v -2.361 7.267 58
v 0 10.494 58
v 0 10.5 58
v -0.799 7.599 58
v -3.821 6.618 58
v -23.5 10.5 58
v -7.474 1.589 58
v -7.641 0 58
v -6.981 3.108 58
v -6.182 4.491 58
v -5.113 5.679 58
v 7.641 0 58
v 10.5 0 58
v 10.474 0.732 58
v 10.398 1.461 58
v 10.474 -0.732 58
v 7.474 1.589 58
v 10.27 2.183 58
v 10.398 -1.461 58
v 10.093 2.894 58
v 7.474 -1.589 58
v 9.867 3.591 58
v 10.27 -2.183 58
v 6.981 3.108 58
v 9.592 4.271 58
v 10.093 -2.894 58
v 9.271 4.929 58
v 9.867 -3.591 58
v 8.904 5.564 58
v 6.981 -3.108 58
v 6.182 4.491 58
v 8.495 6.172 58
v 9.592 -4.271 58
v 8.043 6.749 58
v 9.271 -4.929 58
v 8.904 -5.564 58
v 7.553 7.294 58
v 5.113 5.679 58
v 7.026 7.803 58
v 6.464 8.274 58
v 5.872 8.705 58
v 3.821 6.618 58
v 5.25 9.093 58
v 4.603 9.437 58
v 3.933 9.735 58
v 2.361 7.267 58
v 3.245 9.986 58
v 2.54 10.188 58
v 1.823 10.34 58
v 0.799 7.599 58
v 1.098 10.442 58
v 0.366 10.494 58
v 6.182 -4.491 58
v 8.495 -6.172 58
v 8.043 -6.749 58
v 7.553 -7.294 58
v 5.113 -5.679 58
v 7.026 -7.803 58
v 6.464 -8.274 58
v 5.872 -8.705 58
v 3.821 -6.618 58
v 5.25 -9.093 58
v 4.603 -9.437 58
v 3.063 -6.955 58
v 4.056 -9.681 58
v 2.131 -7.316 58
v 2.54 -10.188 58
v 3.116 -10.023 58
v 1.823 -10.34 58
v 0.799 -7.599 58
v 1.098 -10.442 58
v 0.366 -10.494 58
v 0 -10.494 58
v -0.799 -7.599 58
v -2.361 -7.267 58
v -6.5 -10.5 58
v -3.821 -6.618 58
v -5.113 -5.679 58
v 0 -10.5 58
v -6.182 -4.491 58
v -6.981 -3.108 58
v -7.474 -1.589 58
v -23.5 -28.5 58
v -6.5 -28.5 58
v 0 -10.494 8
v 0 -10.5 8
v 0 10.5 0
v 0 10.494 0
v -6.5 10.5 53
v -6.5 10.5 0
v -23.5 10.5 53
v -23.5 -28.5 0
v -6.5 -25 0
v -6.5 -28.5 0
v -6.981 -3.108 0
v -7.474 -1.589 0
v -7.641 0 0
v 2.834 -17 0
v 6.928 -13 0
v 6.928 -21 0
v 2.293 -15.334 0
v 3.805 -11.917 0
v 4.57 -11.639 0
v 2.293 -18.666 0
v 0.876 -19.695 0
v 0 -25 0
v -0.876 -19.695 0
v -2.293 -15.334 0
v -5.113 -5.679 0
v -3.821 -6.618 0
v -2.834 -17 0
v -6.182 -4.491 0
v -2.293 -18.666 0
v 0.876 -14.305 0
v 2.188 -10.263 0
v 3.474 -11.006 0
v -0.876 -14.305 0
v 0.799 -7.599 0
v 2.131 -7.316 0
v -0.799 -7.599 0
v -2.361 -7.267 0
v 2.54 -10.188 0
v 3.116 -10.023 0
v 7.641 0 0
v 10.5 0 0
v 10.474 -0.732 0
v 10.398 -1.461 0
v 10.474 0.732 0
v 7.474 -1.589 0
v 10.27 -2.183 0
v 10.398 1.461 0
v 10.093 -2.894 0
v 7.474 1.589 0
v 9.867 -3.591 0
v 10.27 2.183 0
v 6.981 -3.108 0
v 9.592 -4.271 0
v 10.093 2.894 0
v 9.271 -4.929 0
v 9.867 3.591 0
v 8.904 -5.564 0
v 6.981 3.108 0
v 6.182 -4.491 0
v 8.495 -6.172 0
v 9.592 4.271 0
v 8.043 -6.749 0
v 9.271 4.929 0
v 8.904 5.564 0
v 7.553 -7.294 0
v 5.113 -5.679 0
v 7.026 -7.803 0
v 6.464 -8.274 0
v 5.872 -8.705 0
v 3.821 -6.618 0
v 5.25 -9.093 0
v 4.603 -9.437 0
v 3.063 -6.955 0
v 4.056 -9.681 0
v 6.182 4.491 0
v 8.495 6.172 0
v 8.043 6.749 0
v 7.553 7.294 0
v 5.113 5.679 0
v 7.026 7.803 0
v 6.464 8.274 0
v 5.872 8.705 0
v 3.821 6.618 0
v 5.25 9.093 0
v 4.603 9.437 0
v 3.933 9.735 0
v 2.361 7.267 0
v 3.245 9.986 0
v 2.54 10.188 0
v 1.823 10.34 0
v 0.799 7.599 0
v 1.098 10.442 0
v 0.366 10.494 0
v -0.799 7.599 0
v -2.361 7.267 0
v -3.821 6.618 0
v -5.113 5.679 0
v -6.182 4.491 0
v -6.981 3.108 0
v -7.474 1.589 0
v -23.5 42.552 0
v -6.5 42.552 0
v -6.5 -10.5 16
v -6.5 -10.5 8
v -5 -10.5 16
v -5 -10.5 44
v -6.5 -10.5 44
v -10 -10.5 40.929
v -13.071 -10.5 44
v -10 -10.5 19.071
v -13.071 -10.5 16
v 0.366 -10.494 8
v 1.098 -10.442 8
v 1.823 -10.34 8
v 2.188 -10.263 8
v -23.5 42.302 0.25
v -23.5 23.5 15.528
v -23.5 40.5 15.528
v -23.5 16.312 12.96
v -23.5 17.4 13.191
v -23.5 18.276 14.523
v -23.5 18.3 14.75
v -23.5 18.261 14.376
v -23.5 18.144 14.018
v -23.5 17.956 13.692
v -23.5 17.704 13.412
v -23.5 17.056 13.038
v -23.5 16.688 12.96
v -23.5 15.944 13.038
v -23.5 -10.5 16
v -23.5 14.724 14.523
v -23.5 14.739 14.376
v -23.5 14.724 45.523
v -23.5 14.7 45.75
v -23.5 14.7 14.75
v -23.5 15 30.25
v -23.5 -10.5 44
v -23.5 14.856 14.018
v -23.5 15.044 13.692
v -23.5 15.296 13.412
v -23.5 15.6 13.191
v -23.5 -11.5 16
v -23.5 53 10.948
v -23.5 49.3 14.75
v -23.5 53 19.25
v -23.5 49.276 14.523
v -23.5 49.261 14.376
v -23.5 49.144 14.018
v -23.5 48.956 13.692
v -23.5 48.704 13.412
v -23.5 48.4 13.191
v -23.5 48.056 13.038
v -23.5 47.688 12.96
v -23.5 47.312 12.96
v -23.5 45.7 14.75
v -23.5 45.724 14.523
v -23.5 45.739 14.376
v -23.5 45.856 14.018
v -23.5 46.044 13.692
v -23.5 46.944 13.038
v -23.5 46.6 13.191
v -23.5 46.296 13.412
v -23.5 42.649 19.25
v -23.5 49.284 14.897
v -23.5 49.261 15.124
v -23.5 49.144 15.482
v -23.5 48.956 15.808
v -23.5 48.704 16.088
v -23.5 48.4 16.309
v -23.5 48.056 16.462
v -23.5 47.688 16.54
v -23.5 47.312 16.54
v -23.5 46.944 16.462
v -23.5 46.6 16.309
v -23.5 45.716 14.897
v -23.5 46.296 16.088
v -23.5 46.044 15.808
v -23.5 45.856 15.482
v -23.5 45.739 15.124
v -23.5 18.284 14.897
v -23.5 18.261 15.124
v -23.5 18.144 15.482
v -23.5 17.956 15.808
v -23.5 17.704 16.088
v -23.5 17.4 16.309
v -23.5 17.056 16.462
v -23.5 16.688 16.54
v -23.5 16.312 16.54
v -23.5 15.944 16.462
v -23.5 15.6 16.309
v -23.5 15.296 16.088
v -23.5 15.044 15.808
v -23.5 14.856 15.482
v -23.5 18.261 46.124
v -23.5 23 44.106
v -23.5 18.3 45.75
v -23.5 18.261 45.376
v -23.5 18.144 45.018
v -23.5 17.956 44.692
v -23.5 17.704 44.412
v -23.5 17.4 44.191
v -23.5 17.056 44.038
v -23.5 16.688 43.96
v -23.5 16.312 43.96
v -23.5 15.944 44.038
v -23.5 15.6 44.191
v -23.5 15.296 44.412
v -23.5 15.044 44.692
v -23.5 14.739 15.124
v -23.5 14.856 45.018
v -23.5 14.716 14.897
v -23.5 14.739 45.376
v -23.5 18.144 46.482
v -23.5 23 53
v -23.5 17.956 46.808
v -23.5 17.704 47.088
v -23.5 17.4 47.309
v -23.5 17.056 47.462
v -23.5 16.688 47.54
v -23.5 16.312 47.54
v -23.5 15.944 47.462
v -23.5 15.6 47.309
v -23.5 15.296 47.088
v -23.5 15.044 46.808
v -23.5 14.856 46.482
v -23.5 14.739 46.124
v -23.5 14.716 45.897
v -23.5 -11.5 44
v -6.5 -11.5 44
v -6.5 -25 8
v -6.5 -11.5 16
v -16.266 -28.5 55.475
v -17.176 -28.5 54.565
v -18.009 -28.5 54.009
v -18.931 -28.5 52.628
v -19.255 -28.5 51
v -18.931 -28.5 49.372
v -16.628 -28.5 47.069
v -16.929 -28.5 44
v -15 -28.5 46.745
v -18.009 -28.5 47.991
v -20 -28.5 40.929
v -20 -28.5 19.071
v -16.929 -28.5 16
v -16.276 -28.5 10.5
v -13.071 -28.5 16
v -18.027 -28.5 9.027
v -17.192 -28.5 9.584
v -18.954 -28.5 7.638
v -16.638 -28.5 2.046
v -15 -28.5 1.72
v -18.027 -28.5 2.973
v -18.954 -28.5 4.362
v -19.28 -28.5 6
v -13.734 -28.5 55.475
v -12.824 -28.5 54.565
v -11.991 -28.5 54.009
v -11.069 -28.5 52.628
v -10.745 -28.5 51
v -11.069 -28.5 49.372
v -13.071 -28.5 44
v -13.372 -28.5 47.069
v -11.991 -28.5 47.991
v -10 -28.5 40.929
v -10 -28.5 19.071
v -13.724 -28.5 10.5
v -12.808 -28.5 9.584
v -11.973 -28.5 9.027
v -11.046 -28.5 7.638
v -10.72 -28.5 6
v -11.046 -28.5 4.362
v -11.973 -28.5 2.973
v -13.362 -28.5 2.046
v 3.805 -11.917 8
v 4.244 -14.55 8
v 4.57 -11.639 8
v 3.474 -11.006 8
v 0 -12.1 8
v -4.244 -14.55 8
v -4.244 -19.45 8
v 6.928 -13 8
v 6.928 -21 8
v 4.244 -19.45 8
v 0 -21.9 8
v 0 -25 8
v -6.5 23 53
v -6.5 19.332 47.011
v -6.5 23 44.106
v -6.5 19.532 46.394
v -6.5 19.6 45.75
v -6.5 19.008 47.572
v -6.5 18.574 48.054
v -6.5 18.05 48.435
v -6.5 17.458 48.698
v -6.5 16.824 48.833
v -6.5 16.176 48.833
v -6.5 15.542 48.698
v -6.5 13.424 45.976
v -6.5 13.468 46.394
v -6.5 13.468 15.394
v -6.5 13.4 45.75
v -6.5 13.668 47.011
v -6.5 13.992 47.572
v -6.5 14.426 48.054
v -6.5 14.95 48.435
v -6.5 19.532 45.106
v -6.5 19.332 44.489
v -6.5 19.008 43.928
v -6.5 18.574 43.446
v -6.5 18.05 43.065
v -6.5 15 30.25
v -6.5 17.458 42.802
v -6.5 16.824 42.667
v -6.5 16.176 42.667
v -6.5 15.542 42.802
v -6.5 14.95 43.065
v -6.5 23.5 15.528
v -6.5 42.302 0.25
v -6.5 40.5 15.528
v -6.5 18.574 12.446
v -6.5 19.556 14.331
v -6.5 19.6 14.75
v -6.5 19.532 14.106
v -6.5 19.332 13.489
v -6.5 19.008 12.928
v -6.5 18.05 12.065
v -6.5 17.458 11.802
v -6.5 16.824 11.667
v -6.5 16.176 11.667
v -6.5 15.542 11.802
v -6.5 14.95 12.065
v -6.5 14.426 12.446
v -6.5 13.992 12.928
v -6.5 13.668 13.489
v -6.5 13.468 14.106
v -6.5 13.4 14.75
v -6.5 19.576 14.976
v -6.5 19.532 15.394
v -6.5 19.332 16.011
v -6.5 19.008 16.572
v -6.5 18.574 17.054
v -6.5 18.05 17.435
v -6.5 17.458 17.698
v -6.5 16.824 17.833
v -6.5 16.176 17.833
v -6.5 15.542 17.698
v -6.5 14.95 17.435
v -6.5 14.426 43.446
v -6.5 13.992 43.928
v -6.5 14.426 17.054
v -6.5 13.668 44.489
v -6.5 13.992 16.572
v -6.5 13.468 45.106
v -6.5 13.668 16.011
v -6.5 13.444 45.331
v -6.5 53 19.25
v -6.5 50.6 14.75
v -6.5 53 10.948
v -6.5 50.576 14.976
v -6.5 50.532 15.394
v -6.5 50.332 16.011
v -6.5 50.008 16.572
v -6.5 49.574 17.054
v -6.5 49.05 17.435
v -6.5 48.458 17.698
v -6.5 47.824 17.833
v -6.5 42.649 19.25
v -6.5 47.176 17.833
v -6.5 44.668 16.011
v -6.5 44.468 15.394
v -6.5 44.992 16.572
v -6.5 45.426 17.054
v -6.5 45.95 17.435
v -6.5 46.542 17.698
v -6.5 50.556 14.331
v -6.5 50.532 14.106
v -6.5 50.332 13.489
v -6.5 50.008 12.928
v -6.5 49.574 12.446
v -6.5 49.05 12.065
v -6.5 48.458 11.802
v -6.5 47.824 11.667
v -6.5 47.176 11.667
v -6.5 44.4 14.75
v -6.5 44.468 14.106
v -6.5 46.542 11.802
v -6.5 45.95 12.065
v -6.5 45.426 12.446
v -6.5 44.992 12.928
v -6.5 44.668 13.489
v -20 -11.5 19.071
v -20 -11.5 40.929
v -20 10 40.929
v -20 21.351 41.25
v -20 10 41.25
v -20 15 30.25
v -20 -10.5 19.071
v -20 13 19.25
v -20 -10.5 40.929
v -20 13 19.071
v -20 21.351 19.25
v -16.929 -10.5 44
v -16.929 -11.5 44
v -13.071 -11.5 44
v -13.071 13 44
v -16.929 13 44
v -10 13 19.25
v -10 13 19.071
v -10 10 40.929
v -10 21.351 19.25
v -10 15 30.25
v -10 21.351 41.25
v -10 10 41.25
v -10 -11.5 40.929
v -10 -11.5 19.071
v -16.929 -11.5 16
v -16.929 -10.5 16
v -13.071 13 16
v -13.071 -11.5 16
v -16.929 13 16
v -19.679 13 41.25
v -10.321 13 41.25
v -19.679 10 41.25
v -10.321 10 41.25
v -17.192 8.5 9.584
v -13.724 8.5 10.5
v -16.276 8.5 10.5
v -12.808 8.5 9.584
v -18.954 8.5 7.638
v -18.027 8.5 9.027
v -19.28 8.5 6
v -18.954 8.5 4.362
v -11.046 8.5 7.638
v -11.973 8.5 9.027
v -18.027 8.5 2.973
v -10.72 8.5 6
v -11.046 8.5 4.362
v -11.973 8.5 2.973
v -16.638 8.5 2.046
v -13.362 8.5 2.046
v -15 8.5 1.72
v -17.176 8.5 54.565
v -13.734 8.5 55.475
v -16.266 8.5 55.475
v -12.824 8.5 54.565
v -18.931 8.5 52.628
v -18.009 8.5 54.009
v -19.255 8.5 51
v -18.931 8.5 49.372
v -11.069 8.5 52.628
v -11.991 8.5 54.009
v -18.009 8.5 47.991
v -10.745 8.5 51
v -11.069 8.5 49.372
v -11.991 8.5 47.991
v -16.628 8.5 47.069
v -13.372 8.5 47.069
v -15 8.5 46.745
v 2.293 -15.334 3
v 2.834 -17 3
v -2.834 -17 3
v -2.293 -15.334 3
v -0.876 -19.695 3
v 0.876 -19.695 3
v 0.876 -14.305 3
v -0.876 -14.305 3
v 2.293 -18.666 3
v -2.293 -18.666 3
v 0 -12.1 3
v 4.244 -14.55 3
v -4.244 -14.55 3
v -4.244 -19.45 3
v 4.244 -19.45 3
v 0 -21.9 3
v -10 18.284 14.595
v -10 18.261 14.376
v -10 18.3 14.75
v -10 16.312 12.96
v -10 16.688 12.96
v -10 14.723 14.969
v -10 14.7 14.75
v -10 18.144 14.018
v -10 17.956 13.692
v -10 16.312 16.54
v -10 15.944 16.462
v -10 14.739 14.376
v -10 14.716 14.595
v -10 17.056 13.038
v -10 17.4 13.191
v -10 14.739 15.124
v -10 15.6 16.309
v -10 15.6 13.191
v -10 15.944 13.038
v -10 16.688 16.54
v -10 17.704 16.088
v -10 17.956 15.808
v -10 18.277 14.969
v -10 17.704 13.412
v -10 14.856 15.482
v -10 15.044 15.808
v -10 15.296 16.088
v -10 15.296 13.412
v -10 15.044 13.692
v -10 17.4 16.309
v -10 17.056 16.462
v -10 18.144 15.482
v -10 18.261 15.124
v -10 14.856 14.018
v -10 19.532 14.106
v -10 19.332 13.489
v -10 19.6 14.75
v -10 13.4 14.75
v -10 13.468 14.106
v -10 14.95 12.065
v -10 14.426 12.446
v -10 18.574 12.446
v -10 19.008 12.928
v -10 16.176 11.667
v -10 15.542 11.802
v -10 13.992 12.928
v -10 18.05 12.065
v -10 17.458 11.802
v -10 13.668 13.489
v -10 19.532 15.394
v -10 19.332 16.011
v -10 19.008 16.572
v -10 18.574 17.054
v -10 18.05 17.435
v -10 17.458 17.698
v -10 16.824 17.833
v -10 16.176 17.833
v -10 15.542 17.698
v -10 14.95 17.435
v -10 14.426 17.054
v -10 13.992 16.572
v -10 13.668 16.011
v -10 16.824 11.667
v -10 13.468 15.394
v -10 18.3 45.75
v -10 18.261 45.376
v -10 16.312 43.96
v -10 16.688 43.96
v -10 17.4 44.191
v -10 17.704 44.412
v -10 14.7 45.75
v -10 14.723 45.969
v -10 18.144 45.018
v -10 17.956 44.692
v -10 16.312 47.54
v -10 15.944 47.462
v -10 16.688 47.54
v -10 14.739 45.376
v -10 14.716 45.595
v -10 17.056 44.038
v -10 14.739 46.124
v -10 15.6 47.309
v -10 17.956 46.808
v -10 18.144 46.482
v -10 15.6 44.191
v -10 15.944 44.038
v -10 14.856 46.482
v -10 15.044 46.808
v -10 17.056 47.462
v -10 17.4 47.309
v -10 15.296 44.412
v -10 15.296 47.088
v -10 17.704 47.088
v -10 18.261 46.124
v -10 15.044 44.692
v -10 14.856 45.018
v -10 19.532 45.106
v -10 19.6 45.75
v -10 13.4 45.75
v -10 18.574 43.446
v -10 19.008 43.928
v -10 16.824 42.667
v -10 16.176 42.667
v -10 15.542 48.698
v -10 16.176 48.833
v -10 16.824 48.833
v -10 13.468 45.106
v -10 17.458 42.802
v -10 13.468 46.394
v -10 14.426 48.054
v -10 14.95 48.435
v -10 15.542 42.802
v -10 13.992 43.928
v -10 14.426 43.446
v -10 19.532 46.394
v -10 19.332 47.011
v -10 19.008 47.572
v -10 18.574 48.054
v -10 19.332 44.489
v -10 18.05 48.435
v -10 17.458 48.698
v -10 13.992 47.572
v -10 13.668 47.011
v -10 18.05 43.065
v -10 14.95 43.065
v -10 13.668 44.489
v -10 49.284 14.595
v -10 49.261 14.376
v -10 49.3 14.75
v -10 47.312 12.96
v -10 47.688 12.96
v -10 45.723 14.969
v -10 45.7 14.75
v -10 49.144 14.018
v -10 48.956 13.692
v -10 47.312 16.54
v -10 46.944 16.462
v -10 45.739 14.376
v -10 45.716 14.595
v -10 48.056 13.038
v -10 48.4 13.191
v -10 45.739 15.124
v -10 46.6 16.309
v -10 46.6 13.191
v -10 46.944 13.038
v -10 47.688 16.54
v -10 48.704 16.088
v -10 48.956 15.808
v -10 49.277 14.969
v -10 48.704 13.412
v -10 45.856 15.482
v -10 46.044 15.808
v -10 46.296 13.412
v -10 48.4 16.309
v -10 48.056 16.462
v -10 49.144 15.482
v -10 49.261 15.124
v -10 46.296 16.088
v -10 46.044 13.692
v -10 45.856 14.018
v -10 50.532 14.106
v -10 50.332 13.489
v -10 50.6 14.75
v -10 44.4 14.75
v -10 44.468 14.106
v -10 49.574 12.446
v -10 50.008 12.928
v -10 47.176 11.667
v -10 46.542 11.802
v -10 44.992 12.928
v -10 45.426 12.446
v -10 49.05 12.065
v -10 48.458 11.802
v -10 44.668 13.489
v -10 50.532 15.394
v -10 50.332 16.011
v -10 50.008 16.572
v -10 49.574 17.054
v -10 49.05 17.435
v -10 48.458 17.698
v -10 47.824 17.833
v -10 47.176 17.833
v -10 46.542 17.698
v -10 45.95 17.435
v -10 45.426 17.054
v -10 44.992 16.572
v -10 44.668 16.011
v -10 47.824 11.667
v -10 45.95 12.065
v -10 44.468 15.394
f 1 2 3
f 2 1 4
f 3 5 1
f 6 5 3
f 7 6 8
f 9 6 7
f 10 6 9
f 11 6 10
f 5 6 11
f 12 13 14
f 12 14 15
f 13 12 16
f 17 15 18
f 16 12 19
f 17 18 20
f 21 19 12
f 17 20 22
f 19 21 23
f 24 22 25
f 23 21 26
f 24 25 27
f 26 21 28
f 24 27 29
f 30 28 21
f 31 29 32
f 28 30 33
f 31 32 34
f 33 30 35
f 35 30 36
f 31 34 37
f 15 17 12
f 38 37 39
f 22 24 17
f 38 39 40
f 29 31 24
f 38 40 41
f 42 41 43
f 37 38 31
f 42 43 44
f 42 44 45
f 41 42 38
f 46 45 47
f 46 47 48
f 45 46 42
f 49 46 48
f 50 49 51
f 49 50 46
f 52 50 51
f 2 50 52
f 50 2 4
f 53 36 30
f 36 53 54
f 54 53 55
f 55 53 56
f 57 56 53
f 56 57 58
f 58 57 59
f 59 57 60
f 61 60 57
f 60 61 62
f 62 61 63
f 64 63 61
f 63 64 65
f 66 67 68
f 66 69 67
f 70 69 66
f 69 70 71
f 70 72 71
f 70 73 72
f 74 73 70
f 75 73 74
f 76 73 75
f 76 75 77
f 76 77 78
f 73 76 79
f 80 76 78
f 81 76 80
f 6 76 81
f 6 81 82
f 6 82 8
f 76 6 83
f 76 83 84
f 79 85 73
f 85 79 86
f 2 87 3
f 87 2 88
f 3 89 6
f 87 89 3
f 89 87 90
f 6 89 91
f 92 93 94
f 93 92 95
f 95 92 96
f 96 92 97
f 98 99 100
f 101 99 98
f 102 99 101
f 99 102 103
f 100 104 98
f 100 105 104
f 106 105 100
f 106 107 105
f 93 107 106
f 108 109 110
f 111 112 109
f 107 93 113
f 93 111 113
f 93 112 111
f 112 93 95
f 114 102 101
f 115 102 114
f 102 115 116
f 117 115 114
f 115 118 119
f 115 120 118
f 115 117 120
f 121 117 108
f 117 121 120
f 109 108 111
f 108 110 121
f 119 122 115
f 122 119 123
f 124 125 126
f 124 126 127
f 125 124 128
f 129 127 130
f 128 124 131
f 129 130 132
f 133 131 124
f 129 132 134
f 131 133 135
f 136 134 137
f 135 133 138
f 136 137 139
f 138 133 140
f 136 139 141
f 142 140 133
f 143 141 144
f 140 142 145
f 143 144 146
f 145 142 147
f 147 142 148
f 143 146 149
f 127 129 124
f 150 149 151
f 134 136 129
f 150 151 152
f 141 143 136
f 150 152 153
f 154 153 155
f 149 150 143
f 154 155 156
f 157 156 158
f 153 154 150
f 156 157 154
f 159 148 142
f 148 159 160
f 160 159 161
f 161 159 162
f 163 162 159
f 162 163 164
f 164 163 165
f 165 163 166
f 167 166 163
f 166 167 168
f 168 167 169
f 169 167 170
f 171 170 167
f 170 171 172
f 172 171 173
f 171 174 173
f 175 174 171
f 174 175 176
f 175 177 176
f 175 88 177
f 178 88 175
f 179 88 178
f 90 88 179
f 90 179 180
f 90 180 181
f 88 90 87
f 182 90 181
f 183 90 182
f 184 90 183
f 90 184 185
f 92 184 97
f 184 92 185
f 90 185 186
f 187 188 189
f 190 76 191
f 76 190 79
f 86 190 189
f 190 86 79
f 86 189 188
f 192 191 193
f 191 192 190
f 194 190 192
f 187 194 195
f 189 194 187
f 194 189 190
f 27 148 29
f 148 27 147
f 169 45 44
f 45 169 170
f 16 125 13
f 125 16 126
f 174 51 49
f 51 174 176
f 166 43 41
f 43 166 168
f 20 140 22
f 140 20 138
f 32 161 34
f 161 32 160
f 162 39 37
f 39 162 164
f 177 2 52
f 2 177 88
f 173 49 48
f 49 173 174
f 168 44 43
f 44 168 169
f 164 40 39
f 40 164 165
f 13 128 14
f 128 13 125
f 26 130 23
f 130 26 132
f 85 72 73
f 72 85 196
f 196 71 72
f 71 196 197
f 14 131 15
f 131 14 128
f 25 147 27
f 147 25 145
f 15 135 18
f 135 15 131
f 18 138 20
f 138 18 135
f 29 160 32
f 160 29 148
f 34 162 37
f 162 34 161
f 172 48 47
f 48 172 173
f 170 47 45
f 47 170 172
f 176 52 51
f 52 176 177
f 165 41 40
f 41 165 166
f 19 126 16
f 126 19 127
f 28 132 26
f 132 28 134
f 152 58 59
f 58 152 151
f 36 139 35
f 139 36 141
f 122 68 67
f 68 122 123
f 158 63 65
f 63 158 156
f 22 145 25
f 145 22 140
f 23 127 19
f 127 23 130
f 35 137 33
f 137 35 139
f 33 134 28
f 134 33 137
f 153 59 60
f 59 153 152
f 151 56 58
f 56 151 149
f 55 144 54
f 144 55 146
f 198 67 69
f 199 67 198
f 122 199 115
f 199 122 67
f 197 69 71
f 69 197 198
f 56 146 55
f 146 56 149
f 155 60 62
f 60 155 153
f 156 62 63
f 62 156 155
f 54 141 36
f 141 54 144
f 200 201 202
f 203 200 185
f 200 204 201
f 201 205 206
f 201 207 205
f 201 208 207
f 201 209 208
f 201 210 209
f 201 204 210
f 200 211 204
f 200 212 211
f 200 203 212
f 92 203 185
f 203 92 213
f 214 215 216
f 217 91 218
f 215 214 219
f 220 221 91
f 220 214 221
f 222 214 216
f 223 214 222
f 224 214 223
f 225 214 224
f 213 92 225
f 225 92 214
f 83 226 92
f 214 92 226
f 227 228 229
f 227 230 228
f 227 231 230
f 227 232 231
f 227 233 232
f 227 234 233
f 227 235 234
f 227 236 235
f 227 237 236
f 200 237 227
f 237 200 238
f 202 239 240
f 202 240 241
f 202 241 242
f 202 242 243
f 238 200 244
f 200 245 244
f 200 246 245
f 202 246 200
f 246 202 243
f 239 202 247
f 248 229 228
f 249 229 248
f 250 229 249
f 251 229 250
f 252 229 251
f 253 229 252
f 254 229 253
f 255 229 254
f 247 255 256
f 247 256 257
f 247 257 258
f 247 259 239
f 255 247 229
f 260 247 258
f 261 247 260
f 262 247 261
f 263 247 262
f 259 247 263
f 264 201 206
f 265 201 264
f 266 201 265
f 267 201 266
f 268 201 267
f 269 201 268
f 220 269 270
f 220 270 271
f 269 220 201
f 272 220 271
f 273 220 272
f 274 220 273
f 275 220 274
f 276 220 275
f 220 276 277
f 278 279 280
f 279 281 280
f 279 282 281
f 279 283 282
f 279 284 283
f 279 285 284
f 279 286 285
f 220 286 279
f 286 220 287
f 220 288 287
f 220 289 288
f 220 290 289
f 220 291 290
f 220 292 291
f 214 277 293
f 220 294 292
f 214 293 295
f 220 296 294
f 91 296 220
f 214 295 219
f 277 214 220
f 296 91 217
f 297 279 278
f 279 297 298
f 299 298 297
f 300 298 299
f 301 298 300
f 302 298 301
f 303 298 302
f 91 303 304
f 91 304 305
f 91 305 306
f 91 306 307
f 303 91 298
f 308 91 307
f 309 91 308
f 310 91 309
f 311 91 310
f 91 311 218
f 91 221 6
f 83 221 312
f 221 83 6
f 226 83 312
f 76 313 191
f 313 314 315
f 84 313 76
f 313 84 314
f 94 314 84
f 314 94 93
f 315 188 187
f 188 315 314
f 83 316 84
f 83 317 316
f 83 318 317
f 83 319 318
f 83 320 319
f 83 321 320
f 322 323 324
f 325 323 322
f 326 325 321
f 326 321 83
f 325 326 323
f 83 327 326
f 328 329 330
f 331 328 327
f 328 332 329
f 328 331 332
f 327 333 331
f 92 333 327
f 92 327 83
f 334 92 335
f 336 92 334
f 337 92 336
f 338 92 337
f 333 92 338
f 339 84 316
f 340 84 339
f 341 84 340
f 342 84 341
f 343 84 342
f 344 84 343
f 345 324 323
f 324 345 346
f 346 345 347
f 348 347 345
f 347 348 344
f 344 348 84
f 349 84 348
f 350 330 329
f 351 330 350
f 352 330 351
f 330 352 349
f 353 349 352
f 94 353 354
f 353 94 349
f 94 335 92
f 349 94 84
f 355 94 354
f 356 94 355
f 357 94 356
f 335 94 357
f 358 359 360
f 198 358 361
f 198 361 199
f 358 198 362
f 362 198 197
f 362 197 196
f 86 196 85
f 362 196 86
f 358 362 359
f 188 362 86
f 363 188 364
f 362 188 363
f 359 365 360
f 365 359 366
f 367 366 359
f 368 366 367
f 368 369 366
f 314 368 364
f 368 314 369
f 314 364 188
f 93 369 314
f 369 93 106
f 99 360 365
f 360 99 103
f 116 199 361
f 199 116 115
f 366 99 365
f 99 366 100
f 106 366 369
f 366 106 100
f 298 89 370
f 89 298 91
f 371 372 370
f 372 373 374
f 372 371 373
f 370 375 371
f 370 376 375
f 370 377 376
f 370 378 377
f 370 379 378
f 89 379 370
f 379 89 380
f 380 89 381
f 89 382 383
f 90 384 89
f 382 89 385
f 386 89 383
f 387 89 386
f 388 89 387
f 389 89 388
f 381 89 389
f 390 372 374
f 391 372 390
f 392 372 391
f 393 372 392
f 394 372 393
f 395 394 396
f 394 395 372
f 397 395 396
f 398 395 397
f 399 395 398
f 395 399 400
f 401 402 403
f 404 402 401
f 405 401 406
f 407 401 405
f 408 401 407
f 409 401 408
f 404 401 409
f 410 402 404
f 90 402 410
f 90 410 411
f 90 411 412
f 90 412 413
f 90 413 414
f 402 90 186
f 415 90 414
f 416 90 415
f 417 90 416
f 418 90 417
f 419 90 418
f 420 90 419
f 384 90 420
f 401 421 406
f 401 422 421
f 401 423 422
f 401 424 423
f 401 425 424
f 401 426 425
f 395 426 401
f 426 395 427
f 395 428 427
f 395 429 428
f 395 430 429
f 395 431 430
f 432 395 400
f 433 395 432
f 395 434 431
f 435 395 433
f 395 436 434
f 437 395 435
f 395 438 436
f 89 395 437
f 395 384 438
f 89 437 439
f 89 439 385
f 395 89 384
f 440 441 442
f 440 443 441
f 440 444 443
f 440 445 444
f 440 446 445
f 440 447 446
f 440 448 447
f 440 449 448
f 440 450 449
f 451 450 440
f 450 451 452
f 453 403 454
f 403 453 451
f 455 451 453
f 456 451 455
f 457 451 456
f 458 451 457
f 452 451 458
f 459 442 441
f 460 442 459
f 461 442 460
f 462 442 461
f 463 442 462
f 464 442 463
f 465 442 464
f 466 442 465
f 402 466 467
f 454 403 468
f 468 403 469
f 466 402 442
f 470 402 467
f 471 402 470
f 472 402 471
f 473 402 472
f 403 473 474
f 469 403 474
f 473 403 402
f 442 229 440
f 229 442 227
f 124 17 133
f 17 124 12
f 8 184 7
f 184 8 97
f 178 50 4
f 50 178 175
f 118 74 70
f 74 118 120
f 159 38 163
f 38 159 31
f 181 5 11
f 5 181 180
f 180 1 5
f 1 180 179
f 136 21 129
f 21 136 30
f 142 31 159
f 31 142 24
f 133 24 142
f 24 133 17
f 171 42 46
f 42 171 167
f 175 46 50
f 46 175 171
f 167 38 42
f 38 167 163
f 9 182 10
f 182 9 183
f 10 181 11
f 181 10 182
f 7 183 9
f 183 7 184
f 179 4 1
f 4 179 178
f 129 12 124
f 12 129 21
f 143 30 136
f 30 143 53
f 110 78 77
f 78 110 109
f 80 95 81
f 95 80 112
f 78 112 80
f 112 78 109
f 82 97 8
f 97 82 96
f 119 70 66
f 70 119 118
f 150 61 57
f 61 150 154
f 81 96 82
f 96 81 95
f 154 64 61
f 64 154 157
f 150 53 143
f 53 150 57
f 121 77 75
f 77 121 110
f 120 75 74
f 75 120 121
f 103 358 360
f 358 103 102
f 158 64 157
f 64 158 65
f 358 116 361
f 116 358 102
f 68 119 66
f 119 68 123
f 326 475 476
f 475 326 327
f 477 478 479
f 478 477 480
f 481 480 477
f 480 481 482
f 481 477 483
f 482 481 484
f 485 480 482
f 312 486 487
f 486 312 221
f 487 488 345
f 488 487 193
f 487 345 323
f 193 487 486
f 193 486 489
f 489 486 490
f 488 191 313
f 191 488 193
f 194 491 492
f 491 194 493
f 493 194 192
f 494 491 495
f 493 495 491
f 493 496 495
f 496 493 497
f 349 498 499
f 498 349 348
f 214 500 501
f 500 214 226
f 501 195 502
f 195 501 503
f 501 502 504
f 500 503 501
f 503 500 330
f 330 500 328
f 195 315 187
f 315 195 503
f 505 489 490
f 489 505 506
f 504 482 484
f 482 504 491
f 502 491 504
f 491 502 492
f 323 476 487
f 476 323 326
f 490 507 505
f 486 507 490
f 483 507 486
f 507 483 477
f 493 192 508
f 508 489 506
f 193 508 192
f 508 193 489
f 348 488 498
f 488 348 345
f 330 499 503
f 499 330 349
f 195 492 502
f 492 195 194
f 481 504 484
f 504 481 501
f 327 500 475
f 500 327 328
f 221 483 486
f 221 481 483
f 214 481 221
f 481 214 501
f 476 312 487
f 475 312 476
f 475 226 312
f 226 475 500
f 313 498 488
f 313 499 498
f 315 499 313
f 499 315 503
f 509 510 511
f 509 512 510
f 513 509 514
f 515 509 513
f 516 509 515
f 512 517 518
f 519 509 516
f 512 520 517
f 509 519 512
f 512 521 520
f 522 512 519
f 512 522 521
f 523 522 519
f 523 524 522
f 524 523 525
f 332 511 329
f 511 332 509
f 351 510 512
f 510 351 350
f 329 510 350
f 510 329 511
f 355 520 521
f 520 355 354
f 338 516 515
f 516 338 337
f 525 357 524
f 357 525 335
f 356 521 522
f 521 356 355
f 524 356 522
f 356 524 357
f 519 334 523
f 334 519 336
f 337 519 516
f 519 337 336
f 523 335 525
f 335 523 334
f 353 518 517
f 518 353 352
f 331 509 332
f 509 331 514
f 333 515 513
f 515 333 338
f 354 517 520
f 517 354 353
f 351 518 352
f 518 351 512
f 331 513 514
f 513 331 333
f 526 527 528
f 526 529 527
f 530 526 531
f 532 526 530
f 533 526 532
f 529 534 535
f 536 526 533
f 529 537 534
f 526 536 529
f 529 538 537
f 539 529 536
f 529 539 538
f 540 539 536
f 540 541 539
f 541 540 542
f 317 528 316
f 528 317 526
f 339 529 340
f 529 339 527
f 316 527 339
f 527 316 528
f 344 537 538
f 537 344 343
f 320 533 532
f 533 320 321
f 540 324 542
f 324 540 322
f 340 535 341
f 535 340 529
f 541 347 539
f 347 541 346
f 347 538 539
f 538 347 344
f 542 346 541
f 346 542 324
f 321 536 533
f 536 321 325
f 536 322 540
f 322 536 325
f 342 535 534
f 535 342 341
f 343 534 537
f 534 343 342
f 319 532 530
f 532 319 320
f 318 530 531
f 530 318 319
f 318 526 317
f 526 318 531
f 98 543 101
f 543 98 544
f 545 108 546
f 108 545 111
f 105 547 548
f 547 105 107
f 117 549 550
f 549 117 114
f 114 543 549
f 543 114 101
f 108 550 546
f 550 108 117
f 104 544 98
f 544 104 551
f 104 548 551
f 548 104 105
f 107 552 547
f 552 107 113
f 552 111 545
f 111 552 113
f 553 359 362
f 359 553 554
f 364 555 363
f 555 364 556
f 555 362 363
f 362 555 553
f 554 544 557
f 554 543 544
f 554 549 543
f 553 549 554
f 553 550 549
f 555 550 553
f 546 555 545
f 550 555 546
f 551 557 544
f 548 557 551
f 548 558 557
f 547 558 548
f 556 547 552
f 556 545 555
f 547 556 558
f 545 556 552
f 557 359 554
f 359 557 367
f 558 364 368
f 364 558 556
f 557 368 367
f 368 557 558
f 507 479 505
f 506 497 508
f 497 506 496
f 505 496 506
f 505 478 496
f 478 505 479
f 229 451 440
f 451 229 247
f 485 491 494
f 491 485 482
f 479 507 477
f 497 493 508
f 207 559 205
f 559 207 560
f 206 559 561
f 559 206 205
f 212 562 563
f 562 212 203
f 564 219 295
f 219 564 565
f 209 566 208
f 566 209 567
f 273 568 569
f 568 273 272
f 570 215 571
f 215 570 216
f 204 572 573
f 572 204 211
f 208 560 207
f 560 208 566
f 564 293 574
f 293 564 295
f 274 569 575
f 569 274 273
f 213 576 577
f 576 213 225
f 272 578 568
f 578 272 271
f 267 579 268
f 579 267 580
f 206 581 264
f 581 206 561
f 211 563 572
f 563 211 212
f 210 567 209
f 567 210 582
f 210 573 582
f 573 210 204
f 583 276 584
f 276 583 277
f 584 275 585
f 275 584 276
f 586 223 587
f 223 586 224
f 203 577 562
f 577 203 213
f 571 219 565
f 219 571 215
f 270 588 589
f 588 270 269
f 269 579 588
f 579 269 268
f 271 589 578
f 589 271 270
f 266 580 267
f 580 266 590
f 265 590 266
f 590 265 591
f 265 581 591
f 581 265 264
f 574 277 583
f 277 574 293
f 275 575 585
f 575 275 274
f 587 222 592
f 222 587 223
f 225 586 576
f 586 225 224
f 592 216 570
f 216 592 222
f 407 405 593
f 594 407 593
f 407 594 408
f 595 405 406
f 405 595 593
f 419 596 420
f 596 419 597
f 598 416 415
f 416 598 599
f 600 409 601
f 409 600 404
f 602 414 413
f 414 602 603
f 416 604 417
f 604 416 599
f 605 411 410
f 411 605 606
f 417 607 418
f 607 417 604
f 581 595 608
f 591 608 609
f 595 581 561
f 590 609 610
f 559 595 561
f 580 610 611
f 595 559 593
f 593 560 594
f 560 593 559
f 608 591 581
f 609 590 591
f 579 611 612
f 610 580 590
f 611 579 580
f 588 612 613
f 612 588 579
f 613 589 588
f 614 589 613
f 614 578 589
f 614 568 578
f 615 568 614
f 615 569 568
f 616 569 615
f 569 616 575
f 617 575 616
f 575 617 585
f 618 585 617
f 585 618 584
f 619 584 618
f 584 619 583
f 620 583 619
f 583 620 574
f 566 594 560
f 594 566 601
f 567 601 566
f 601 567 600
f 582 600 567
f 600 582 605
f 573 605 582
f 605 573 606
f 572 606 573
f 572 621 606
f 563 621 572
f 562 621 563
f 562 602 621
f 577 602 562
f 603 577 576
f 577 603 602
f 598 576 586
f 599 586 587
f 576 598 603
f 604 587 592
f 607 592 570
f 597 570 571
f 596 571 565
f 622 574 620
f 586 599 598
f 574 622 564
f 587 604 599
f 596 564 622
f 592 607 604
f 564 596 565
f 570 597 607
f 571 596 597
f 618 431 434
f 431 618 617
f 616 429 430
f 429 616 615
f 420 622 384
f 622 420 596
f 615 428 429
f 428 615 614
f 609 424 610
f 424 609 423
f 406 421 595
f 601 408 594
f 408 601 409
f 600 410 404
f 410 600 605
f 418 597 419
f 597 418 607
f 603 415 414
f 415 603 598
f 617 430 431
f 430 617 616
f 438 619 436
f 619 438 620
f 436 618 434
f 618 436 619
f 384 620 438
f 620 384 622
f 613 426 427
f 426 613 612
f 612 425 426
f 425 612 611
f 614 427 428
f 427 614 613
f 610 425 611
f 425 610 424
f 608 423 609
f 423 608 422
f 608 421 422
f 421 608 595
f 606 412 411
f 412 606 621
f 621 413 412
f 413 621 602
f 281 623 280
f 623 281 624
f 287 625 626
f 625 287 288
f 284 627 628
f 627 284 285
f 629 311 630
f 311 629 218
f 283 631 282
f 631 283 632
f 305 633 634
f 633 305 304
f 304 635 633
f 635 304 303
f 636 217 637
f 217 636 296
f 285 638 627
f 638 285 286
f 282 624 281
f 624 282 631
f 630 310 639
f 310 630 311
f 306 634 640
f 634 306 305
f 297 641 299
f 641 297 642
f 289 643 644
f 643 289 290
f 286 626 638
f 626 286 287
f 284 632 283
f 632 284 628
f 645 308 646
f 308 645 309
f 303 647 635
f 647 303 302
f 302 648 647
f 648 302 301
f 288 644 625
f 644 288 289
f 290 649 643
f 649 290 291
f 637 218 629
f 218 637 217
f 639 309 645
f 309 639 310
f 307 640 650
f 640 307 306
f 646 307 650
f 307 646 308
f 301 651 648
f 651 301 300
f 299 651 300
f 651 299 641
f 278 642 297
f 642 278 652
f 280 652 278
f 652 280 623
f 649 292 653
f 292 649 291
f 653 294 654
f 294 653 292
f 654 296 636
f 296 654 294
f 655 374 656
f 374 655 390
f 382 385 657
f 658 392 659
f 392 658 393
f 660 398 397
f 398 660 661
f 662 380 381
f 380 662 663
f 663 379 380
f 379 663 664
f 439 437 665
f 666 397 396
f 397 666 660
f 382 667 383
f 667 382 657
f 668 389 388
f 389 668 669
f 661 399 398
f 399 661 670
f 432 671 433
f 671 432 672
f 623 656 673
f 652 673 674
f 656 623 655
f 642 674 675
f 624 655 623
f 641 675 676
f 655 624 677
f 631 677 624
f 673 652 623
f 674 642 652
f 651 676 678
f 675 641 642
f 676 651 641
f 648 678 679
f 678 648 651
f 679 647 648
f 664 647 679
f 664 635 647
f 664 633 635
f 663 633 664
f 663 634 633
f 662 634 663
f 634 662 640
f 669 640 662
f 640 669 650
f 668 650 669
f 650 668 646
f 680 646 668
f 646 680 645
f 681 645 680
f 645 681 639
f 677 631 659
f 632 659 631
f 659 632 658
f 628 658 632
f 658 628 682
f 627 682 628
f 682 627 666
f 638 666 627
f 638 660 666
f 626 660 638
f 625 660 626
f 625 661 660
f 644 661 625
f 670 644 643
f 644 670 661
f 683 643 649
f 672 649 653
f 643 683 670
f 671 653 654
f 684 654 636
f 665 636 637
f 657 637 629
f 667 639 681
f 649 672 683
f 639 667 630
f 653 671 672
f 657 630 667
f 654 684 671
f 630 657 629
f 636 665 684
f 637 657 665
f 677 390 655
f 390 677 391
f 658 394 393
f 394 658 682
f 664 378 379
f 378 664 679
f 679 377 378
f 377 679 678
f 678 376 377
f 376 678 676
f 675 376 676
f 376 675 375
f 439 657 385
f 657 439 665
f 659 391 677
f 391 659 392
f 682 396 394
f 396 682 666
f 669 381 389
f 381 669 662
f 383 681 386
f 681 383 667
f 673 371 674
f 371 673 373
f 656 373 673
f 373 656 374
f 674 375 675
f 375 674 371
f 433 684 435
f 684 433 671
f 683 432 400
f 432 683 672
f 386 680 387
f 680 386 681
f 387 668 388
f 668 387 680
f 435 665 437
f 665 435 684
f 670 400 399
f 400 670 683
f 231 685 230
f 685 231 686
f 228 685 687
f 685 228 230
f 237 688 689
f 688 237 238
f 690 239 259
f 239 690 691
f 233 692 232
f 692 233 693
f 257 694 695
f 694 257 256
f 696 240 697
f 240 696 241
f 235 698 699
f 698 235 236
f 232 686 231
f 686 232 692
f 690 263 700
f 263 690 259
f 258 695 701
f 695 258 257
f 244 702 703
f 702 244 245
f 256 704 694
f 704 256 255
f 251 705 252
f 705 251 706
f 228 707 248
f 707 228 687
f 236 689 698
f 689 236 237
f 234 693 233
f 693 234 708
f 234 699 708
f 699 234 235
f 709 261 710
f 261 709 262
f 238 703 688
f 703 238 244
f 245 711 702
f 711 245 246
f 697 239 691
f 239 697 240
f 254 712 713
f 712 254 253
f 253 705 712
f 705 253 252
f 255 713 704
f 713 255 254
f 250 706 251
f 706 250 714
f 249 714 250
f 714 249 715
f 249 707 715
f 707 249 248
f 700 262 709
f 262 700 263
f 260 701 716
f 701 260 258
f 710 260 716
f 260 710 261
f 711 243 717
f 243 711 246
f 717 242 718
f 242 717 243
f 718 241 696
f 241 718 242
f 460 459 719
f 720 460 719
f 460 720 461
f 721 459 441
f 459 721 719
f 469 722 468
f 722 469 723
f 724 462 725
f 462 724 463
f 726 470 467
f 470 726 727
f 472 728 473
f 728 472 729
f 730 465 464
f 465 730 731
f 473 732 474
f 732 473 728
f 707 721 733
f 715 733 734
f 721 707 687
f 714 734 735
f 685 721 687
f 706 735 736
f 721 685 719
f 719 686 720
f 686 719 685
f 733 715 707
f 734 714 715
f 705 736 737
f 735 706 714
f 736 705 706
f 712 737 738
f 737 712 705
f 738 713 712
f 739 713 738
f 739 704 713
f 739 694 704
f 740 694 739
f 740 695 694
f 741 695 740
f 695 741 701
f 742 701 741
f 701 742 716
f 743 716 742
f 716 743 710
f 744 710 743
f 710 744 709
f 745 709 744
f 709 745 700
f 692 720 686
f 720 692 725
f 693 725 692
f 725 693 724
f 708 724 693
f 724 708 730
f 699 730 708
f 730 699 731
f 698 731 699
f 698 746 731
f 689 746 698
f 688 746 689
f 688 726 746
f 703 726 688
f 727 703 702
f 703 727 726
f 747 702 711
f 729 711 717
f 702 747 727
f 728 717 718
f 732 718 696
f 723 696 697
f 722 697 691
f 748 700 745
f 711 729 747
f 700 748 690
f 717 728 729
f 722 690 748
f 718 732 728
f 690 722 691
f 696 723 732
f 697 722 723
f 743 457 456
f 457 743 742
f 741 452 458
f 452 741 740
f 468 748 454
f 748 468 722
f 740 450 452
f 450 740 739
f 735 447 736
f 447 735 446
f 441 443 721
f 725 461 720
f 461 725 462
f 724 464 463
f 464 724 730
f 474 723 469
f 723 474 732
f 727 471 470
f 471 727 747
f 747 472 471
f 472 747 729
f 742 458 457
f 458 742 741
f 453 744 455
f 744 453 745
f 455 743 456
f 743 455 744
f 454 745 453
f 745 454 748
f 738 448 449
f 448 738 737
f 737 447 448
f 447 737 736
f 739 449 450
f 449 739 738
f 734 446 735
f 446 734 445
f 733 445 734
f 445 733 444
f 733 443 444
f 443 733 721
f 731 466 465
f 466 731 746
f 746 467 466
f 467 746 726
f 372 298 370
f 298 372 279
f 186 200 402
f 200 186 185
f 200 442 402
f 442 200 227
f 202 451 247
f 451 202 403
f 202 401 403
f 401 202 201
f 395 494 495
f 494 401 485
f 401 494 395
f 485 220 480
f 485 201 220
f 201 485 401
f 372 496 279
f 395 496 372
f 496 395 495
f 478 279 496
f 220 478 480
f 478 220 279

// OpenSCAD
// file: polyholes.scad
// MK2Clone r2
// based on Mendel90
//
// GNU GPL v2
// nop.head@gmail.com
// hydraraptor.blogspot.com
//
// See http://hydraraptor.blogspot.com/2011/02/polyholes.html
//
function sides(r) = max(round(4 *r),3);
function correctedRadius(r,n) = 0.1 + r / cos(180 / n);
function correctedDiameter(d) = 0.2 + d / cos(180 / sides(d / 2));

module polyCircle(r, center = false) {
    n = sides(r);
    circle(r = correctedRadius(r,n), $fn = n, center = center);
}

module poly_circle(r, center = false) {
	polyCircle(r, center);
}

module polyCylinder(r, h, center = false) {
    n = sides(r);
    cylinder(h = h, r = correctedRadius(r,n), $fn = n, center = center);
}

module poly_cylinder(r, h, center = false) {
	polyCylinder(r,h,center);
}

module polydCylinder(r, center = false) {
    n = sides(r);
    r = correctedRadius(r,n);
    cylinder(h = h, r = r, $fn = n, center = center);
    translate([0, -r, 0])
        cube([r, 2 * r, h]);
}

module poly_d_cylinder(r, center = false) {
	polydCylinder(r,center);
}
// file: bearing.scad
//Stallman 3D printer
// Bearing holders
// GNU GPL v3

//Derived from:
// PRUSA iteration3 Bearing holders GNU GPL v3 Josef Průša <iam@josefprusa.cz> and contributors http://www.reprap.org/wiki/Prusa_Mendel http://prusamendel.org

use <polyholes.scad>

bearing_diameter = 15;

module horizontal_bearing_base(bearings=1){
 translate(v=[0,0,6]) cube(size = [24,8+bearings*25,12], center = true);	
}
module horizontal_bearing_holes(bearings=1){
 cutter_lenght = 10+bearings*25;
 one_holder_lenght = 8+25;
 holder_lenght = 8+bearings*25;
 
 // Main bearing cut
 difference(){
  translate(v=[0,0,12]) rotate(a=[90,0,0]) translate(v=[0,0,-cutter_lenght/2]) cylinder(h = cutter_lenght, r=bearing_diameter/2, $fn=50);
  // Bearing retainers
  translate(v=[0,1-holder_lenght/2,3]) cube(size = [24,6,8], center = true);
  translate(v=[0,-1+holder_lenght/2,3]) cube(size = [24,6,8], center = true);
 }
 
 // Ziptie cutouts
 ziptie_cut_ofset = 0;
 for ( i = [0 : bearings-1] ){
  // For easier positioning I move them by half of one 
  // bearing holder then add each bearign lenght and then center again
  translate(v=[0,-holder_lenght/2,0]) translate(v=[0,one_holder_lenght/2+i*25,0]) difference(){
   union(){
    translate(v=[0,2-6,12]) rotate(a=[90,0,0]) translate(v=[0,0,0]) cylinder(h = 4, r=12.5, $fn=50);
    translate(v=[0,2+6,12]) rotate(a=[90,0,0]) translate(v=[0,0,0]) cylinder(h = 4, r=12.5, $fn=50);
   }
   translate(v=[0,10,12]) rotate(a=[90,0,0]) translate(v=[0,0,0]) cylinder(h = 24, r=10, $fn=50);
  }
 }
 
}

module horizontal_bearing_test(){
 difference(){
  horizontal_bearing_base(1);
  horizontal_bearing_holes(1);
 }
 translate(v=[30,0,0]) difference(){
  horizontal_bearing_base(2);
  horizontal_bearing_holes(2);
 }
 translate(v=[60,0,0]) difference(){
  horizontal_bearing_base(3);
  horizontal_bearing_holes(3);
 }
}



thinwall = 3;
bearing_size = bearing_diameter + 2 * thinwall;

module vertical_bearing_base(){
 translate(v=[-2-bearing_size/4,0,29]) cube(size = [4+bearing_size/2,bearing_size,58], center = true);
 cylinder(h = 58, r=bearing_size/2, $fn = 90);
}

module vertical_bearing_holes(){
  translate(v=[0,0,-1]) poly_cylinder(h = 62, r=bearing_diameter/2);
  rotate(a=[0,0,-70]) translate(v=[bearing_diameter/2-1,-0.5,-1]) cube(size = [thinwall*2,1,62]);

}

difference(){
vertical_bearing_base();
vertical_bearing_holes();
}
// file: x-end.scad
//Stallman 3D printer
// X end
// Used to attach endstops to 8mm rods
// GNU GPL v3

//Derived from:
// PRUSA iteration3 X end GNU GPL v3 Josef Průša <iam@josefprusa.cz> and contributors http://www.reprap.org/wiki/Prusa_Mendel http://prusamendel.org


use <bearing.scad>
use <polyholes.scad>
rod_distance = 45;

module x_end_base(){
// Main block
height = 58;
translate(v=[-15,-9,height/2]) cube(size = [17,39,height], center = true);
// Bearing holder
 vertical_bearing_base();	
//Nut trap
 // Cube
 translate(v=[-2-2,-17,4]) cube(size = [8,16,8], center = true);
 // Hexagon
 translate(v=[0,-17,0]) rotate([0,0,30]) cylinder(h = 8, r=8, $fn = 6);
}

module x_end_holes(){
 vertical_bearing_holes();
// Belt hole
translate(v=[-1,0,0]){
// Stress relief
translate(v=[-5.5-10+1.5,-10-1,30]) cube(size = [20,1,28], center = true);
difference(){
	translate(v=[-5.5-10+1.5,-10,30]) cube(size = [10,46,28], center = true);

	

	// Nice edges
	translate(v=[-5.5-10+1.5,-10,30+23]) rotate([0,45,0]) cube(size = [10,46,28], center = true);
	translate(v=[-5.5-10+1.5,-10,30+23]) rotate([0,-45,0]) cube(size = [10,46,28], center = true);
	translate(v=[-5.5-10+1.5,-10,30-23]) rotate([0,45,0]) cube(size = [10,46,28], center = true);
	translate(v=[-5.5-10+1.5,-10,30-23]) rotate([0,-45,0]) cube(size = [10,46,28], center = true);

}
}

// Bottom pushfit rod
translate(v=[-15,-41.5,6]) rotate(a=[-90,0,0]) pushfit_rod(8.2,50); //was 8.1
// Top pushfit rod
translate(v=[-15,-41.5,rod_distance+6]) rotate(a=[-90,0,0]) pushfit_rod(8.15,50);
// Nut trap
 translate(v=[0,-17,-0.5]) poly_cylinder(h = 4, r=2.6, $fn=25);
 translate(v=[0,-17,3]) rotate([0,0,30]) cylinder(h = 10, r=4.9, $fn = 6);
}


// Final prototype
module x_end_plain(){
 difference(){
  x_end_base();
  x_end_holes();
 }
}

x_end_plain();


module pushfit_rod(diameter,length){
 poly_cylinder(h = length, r=diameter/2);
 difference(){
 	translate(v=[0,-diameter/2.85,length/2]) rotate([0,0,45]) cube(size = [diameter/2,diameter/2,length], center = true);
 	translate(v=[0,-diameter/4-diameter/2-0.4,length/2]) rotate([0,0,0]) cube(size = [diameter,diameter/2,length], center = true);
 }
 //translate(v=[0,-diameter/2-2,length/2]) cube(size = [diameter,1,length], center = true);
}
// main file
//Stallman 3D printer
// X end motor holder
// Used to attach endstops to 8mm rods
// GNU GPL v3

//Derived from:
// PRUSA iteration3 X end motor GNU GPL v3 Josef Průša <iam@josefprusa.cz> and contributors http://www.reprap.org/wiki/Prusa_Mendel http://prusamendel.org

use <x-end.scad>

module x_end_motor_base(){
 x_end_base();
 translate(v=[-15,31,26.5]) cube(size = [17,44,53], center = true);
}

module x_end_motor_holes(){
 x_end_holes();
 // Position to place
 translate(v=[-1,32,30.25]){
  // Belt hole
  translate(v=[-14,1,0]) cube(size = [10,46,22], center = true);
  // Motor mounting holes
  translate(v=[20,-15.5,-15.5]) rotate(a=[0,-90,0]) rotate(a=[0,0,90]) cylinder(h = 70, r=1.8, $fn=30);
  translate(v=[1,-15.5,-15.5]) rotate(a=[0,-90,0]) rotate(a=[0,0,90]) cylinder(h = 10, r=3.1, $fn=30);
 

  translate(v=[20,-15.5,15.5]) rotate(a=[0,-90,0]) rotate(a=[0,0,90]) cylinder(h = 70, r=1.8, $fn=30);
  translate(v=[1,-15.5,15.5]) rotate(a=[0,-90,0]) rotate(a=[0,0,90]) cylinder(h = 10, r=3.1, $fn=30);


  translate(v=[20,15.5,-15.5]) rotate(a=[0,-90,0]) rotate(a=[0,0,90]) cylinder(h = 70, r=1.8, $fn=30);
  translate(v=[1,15.5,-15.5]) rotate(a=[0,-90,0]) rotate(a=[0,0,90]) cylinder(h = 10, r=3.1, $fn=30);


  translate(v=[20,15.5,15.5]) rotate(a=[0,-90,0]) rotate(a=[0,0,90]) cylinder(h = 70, r=1.8, $fn=30);
  translate(v=[1,15.5,15.5]) rotate(a=[0,-90,0]) rotate(a=[0,0,90]) cylinder(h = 10, r=3.1, $fn=30);

  // Material saving cutout 
  translate(v=[-10,12,10]) cube(size = [60,42,42], center = true);

  // Material saving cutout
  translate(v=[-10,40,-30]) rotate(a=[45,0,0])  cube(size = [60,42,42], center = true);
  // Motor shaft cutout
  translate(v=[0,0,0]) rotate(a=[0,-90,0]) rotate(a=[0,0,90]) cylinder(h = 70, r=17, $fn=6);
 }
}

// Final part
module x_end_motor(){
 difference(){
  x_end_motor_base();
  x_end_motor_holes();
 }
}

x_end_motor();
